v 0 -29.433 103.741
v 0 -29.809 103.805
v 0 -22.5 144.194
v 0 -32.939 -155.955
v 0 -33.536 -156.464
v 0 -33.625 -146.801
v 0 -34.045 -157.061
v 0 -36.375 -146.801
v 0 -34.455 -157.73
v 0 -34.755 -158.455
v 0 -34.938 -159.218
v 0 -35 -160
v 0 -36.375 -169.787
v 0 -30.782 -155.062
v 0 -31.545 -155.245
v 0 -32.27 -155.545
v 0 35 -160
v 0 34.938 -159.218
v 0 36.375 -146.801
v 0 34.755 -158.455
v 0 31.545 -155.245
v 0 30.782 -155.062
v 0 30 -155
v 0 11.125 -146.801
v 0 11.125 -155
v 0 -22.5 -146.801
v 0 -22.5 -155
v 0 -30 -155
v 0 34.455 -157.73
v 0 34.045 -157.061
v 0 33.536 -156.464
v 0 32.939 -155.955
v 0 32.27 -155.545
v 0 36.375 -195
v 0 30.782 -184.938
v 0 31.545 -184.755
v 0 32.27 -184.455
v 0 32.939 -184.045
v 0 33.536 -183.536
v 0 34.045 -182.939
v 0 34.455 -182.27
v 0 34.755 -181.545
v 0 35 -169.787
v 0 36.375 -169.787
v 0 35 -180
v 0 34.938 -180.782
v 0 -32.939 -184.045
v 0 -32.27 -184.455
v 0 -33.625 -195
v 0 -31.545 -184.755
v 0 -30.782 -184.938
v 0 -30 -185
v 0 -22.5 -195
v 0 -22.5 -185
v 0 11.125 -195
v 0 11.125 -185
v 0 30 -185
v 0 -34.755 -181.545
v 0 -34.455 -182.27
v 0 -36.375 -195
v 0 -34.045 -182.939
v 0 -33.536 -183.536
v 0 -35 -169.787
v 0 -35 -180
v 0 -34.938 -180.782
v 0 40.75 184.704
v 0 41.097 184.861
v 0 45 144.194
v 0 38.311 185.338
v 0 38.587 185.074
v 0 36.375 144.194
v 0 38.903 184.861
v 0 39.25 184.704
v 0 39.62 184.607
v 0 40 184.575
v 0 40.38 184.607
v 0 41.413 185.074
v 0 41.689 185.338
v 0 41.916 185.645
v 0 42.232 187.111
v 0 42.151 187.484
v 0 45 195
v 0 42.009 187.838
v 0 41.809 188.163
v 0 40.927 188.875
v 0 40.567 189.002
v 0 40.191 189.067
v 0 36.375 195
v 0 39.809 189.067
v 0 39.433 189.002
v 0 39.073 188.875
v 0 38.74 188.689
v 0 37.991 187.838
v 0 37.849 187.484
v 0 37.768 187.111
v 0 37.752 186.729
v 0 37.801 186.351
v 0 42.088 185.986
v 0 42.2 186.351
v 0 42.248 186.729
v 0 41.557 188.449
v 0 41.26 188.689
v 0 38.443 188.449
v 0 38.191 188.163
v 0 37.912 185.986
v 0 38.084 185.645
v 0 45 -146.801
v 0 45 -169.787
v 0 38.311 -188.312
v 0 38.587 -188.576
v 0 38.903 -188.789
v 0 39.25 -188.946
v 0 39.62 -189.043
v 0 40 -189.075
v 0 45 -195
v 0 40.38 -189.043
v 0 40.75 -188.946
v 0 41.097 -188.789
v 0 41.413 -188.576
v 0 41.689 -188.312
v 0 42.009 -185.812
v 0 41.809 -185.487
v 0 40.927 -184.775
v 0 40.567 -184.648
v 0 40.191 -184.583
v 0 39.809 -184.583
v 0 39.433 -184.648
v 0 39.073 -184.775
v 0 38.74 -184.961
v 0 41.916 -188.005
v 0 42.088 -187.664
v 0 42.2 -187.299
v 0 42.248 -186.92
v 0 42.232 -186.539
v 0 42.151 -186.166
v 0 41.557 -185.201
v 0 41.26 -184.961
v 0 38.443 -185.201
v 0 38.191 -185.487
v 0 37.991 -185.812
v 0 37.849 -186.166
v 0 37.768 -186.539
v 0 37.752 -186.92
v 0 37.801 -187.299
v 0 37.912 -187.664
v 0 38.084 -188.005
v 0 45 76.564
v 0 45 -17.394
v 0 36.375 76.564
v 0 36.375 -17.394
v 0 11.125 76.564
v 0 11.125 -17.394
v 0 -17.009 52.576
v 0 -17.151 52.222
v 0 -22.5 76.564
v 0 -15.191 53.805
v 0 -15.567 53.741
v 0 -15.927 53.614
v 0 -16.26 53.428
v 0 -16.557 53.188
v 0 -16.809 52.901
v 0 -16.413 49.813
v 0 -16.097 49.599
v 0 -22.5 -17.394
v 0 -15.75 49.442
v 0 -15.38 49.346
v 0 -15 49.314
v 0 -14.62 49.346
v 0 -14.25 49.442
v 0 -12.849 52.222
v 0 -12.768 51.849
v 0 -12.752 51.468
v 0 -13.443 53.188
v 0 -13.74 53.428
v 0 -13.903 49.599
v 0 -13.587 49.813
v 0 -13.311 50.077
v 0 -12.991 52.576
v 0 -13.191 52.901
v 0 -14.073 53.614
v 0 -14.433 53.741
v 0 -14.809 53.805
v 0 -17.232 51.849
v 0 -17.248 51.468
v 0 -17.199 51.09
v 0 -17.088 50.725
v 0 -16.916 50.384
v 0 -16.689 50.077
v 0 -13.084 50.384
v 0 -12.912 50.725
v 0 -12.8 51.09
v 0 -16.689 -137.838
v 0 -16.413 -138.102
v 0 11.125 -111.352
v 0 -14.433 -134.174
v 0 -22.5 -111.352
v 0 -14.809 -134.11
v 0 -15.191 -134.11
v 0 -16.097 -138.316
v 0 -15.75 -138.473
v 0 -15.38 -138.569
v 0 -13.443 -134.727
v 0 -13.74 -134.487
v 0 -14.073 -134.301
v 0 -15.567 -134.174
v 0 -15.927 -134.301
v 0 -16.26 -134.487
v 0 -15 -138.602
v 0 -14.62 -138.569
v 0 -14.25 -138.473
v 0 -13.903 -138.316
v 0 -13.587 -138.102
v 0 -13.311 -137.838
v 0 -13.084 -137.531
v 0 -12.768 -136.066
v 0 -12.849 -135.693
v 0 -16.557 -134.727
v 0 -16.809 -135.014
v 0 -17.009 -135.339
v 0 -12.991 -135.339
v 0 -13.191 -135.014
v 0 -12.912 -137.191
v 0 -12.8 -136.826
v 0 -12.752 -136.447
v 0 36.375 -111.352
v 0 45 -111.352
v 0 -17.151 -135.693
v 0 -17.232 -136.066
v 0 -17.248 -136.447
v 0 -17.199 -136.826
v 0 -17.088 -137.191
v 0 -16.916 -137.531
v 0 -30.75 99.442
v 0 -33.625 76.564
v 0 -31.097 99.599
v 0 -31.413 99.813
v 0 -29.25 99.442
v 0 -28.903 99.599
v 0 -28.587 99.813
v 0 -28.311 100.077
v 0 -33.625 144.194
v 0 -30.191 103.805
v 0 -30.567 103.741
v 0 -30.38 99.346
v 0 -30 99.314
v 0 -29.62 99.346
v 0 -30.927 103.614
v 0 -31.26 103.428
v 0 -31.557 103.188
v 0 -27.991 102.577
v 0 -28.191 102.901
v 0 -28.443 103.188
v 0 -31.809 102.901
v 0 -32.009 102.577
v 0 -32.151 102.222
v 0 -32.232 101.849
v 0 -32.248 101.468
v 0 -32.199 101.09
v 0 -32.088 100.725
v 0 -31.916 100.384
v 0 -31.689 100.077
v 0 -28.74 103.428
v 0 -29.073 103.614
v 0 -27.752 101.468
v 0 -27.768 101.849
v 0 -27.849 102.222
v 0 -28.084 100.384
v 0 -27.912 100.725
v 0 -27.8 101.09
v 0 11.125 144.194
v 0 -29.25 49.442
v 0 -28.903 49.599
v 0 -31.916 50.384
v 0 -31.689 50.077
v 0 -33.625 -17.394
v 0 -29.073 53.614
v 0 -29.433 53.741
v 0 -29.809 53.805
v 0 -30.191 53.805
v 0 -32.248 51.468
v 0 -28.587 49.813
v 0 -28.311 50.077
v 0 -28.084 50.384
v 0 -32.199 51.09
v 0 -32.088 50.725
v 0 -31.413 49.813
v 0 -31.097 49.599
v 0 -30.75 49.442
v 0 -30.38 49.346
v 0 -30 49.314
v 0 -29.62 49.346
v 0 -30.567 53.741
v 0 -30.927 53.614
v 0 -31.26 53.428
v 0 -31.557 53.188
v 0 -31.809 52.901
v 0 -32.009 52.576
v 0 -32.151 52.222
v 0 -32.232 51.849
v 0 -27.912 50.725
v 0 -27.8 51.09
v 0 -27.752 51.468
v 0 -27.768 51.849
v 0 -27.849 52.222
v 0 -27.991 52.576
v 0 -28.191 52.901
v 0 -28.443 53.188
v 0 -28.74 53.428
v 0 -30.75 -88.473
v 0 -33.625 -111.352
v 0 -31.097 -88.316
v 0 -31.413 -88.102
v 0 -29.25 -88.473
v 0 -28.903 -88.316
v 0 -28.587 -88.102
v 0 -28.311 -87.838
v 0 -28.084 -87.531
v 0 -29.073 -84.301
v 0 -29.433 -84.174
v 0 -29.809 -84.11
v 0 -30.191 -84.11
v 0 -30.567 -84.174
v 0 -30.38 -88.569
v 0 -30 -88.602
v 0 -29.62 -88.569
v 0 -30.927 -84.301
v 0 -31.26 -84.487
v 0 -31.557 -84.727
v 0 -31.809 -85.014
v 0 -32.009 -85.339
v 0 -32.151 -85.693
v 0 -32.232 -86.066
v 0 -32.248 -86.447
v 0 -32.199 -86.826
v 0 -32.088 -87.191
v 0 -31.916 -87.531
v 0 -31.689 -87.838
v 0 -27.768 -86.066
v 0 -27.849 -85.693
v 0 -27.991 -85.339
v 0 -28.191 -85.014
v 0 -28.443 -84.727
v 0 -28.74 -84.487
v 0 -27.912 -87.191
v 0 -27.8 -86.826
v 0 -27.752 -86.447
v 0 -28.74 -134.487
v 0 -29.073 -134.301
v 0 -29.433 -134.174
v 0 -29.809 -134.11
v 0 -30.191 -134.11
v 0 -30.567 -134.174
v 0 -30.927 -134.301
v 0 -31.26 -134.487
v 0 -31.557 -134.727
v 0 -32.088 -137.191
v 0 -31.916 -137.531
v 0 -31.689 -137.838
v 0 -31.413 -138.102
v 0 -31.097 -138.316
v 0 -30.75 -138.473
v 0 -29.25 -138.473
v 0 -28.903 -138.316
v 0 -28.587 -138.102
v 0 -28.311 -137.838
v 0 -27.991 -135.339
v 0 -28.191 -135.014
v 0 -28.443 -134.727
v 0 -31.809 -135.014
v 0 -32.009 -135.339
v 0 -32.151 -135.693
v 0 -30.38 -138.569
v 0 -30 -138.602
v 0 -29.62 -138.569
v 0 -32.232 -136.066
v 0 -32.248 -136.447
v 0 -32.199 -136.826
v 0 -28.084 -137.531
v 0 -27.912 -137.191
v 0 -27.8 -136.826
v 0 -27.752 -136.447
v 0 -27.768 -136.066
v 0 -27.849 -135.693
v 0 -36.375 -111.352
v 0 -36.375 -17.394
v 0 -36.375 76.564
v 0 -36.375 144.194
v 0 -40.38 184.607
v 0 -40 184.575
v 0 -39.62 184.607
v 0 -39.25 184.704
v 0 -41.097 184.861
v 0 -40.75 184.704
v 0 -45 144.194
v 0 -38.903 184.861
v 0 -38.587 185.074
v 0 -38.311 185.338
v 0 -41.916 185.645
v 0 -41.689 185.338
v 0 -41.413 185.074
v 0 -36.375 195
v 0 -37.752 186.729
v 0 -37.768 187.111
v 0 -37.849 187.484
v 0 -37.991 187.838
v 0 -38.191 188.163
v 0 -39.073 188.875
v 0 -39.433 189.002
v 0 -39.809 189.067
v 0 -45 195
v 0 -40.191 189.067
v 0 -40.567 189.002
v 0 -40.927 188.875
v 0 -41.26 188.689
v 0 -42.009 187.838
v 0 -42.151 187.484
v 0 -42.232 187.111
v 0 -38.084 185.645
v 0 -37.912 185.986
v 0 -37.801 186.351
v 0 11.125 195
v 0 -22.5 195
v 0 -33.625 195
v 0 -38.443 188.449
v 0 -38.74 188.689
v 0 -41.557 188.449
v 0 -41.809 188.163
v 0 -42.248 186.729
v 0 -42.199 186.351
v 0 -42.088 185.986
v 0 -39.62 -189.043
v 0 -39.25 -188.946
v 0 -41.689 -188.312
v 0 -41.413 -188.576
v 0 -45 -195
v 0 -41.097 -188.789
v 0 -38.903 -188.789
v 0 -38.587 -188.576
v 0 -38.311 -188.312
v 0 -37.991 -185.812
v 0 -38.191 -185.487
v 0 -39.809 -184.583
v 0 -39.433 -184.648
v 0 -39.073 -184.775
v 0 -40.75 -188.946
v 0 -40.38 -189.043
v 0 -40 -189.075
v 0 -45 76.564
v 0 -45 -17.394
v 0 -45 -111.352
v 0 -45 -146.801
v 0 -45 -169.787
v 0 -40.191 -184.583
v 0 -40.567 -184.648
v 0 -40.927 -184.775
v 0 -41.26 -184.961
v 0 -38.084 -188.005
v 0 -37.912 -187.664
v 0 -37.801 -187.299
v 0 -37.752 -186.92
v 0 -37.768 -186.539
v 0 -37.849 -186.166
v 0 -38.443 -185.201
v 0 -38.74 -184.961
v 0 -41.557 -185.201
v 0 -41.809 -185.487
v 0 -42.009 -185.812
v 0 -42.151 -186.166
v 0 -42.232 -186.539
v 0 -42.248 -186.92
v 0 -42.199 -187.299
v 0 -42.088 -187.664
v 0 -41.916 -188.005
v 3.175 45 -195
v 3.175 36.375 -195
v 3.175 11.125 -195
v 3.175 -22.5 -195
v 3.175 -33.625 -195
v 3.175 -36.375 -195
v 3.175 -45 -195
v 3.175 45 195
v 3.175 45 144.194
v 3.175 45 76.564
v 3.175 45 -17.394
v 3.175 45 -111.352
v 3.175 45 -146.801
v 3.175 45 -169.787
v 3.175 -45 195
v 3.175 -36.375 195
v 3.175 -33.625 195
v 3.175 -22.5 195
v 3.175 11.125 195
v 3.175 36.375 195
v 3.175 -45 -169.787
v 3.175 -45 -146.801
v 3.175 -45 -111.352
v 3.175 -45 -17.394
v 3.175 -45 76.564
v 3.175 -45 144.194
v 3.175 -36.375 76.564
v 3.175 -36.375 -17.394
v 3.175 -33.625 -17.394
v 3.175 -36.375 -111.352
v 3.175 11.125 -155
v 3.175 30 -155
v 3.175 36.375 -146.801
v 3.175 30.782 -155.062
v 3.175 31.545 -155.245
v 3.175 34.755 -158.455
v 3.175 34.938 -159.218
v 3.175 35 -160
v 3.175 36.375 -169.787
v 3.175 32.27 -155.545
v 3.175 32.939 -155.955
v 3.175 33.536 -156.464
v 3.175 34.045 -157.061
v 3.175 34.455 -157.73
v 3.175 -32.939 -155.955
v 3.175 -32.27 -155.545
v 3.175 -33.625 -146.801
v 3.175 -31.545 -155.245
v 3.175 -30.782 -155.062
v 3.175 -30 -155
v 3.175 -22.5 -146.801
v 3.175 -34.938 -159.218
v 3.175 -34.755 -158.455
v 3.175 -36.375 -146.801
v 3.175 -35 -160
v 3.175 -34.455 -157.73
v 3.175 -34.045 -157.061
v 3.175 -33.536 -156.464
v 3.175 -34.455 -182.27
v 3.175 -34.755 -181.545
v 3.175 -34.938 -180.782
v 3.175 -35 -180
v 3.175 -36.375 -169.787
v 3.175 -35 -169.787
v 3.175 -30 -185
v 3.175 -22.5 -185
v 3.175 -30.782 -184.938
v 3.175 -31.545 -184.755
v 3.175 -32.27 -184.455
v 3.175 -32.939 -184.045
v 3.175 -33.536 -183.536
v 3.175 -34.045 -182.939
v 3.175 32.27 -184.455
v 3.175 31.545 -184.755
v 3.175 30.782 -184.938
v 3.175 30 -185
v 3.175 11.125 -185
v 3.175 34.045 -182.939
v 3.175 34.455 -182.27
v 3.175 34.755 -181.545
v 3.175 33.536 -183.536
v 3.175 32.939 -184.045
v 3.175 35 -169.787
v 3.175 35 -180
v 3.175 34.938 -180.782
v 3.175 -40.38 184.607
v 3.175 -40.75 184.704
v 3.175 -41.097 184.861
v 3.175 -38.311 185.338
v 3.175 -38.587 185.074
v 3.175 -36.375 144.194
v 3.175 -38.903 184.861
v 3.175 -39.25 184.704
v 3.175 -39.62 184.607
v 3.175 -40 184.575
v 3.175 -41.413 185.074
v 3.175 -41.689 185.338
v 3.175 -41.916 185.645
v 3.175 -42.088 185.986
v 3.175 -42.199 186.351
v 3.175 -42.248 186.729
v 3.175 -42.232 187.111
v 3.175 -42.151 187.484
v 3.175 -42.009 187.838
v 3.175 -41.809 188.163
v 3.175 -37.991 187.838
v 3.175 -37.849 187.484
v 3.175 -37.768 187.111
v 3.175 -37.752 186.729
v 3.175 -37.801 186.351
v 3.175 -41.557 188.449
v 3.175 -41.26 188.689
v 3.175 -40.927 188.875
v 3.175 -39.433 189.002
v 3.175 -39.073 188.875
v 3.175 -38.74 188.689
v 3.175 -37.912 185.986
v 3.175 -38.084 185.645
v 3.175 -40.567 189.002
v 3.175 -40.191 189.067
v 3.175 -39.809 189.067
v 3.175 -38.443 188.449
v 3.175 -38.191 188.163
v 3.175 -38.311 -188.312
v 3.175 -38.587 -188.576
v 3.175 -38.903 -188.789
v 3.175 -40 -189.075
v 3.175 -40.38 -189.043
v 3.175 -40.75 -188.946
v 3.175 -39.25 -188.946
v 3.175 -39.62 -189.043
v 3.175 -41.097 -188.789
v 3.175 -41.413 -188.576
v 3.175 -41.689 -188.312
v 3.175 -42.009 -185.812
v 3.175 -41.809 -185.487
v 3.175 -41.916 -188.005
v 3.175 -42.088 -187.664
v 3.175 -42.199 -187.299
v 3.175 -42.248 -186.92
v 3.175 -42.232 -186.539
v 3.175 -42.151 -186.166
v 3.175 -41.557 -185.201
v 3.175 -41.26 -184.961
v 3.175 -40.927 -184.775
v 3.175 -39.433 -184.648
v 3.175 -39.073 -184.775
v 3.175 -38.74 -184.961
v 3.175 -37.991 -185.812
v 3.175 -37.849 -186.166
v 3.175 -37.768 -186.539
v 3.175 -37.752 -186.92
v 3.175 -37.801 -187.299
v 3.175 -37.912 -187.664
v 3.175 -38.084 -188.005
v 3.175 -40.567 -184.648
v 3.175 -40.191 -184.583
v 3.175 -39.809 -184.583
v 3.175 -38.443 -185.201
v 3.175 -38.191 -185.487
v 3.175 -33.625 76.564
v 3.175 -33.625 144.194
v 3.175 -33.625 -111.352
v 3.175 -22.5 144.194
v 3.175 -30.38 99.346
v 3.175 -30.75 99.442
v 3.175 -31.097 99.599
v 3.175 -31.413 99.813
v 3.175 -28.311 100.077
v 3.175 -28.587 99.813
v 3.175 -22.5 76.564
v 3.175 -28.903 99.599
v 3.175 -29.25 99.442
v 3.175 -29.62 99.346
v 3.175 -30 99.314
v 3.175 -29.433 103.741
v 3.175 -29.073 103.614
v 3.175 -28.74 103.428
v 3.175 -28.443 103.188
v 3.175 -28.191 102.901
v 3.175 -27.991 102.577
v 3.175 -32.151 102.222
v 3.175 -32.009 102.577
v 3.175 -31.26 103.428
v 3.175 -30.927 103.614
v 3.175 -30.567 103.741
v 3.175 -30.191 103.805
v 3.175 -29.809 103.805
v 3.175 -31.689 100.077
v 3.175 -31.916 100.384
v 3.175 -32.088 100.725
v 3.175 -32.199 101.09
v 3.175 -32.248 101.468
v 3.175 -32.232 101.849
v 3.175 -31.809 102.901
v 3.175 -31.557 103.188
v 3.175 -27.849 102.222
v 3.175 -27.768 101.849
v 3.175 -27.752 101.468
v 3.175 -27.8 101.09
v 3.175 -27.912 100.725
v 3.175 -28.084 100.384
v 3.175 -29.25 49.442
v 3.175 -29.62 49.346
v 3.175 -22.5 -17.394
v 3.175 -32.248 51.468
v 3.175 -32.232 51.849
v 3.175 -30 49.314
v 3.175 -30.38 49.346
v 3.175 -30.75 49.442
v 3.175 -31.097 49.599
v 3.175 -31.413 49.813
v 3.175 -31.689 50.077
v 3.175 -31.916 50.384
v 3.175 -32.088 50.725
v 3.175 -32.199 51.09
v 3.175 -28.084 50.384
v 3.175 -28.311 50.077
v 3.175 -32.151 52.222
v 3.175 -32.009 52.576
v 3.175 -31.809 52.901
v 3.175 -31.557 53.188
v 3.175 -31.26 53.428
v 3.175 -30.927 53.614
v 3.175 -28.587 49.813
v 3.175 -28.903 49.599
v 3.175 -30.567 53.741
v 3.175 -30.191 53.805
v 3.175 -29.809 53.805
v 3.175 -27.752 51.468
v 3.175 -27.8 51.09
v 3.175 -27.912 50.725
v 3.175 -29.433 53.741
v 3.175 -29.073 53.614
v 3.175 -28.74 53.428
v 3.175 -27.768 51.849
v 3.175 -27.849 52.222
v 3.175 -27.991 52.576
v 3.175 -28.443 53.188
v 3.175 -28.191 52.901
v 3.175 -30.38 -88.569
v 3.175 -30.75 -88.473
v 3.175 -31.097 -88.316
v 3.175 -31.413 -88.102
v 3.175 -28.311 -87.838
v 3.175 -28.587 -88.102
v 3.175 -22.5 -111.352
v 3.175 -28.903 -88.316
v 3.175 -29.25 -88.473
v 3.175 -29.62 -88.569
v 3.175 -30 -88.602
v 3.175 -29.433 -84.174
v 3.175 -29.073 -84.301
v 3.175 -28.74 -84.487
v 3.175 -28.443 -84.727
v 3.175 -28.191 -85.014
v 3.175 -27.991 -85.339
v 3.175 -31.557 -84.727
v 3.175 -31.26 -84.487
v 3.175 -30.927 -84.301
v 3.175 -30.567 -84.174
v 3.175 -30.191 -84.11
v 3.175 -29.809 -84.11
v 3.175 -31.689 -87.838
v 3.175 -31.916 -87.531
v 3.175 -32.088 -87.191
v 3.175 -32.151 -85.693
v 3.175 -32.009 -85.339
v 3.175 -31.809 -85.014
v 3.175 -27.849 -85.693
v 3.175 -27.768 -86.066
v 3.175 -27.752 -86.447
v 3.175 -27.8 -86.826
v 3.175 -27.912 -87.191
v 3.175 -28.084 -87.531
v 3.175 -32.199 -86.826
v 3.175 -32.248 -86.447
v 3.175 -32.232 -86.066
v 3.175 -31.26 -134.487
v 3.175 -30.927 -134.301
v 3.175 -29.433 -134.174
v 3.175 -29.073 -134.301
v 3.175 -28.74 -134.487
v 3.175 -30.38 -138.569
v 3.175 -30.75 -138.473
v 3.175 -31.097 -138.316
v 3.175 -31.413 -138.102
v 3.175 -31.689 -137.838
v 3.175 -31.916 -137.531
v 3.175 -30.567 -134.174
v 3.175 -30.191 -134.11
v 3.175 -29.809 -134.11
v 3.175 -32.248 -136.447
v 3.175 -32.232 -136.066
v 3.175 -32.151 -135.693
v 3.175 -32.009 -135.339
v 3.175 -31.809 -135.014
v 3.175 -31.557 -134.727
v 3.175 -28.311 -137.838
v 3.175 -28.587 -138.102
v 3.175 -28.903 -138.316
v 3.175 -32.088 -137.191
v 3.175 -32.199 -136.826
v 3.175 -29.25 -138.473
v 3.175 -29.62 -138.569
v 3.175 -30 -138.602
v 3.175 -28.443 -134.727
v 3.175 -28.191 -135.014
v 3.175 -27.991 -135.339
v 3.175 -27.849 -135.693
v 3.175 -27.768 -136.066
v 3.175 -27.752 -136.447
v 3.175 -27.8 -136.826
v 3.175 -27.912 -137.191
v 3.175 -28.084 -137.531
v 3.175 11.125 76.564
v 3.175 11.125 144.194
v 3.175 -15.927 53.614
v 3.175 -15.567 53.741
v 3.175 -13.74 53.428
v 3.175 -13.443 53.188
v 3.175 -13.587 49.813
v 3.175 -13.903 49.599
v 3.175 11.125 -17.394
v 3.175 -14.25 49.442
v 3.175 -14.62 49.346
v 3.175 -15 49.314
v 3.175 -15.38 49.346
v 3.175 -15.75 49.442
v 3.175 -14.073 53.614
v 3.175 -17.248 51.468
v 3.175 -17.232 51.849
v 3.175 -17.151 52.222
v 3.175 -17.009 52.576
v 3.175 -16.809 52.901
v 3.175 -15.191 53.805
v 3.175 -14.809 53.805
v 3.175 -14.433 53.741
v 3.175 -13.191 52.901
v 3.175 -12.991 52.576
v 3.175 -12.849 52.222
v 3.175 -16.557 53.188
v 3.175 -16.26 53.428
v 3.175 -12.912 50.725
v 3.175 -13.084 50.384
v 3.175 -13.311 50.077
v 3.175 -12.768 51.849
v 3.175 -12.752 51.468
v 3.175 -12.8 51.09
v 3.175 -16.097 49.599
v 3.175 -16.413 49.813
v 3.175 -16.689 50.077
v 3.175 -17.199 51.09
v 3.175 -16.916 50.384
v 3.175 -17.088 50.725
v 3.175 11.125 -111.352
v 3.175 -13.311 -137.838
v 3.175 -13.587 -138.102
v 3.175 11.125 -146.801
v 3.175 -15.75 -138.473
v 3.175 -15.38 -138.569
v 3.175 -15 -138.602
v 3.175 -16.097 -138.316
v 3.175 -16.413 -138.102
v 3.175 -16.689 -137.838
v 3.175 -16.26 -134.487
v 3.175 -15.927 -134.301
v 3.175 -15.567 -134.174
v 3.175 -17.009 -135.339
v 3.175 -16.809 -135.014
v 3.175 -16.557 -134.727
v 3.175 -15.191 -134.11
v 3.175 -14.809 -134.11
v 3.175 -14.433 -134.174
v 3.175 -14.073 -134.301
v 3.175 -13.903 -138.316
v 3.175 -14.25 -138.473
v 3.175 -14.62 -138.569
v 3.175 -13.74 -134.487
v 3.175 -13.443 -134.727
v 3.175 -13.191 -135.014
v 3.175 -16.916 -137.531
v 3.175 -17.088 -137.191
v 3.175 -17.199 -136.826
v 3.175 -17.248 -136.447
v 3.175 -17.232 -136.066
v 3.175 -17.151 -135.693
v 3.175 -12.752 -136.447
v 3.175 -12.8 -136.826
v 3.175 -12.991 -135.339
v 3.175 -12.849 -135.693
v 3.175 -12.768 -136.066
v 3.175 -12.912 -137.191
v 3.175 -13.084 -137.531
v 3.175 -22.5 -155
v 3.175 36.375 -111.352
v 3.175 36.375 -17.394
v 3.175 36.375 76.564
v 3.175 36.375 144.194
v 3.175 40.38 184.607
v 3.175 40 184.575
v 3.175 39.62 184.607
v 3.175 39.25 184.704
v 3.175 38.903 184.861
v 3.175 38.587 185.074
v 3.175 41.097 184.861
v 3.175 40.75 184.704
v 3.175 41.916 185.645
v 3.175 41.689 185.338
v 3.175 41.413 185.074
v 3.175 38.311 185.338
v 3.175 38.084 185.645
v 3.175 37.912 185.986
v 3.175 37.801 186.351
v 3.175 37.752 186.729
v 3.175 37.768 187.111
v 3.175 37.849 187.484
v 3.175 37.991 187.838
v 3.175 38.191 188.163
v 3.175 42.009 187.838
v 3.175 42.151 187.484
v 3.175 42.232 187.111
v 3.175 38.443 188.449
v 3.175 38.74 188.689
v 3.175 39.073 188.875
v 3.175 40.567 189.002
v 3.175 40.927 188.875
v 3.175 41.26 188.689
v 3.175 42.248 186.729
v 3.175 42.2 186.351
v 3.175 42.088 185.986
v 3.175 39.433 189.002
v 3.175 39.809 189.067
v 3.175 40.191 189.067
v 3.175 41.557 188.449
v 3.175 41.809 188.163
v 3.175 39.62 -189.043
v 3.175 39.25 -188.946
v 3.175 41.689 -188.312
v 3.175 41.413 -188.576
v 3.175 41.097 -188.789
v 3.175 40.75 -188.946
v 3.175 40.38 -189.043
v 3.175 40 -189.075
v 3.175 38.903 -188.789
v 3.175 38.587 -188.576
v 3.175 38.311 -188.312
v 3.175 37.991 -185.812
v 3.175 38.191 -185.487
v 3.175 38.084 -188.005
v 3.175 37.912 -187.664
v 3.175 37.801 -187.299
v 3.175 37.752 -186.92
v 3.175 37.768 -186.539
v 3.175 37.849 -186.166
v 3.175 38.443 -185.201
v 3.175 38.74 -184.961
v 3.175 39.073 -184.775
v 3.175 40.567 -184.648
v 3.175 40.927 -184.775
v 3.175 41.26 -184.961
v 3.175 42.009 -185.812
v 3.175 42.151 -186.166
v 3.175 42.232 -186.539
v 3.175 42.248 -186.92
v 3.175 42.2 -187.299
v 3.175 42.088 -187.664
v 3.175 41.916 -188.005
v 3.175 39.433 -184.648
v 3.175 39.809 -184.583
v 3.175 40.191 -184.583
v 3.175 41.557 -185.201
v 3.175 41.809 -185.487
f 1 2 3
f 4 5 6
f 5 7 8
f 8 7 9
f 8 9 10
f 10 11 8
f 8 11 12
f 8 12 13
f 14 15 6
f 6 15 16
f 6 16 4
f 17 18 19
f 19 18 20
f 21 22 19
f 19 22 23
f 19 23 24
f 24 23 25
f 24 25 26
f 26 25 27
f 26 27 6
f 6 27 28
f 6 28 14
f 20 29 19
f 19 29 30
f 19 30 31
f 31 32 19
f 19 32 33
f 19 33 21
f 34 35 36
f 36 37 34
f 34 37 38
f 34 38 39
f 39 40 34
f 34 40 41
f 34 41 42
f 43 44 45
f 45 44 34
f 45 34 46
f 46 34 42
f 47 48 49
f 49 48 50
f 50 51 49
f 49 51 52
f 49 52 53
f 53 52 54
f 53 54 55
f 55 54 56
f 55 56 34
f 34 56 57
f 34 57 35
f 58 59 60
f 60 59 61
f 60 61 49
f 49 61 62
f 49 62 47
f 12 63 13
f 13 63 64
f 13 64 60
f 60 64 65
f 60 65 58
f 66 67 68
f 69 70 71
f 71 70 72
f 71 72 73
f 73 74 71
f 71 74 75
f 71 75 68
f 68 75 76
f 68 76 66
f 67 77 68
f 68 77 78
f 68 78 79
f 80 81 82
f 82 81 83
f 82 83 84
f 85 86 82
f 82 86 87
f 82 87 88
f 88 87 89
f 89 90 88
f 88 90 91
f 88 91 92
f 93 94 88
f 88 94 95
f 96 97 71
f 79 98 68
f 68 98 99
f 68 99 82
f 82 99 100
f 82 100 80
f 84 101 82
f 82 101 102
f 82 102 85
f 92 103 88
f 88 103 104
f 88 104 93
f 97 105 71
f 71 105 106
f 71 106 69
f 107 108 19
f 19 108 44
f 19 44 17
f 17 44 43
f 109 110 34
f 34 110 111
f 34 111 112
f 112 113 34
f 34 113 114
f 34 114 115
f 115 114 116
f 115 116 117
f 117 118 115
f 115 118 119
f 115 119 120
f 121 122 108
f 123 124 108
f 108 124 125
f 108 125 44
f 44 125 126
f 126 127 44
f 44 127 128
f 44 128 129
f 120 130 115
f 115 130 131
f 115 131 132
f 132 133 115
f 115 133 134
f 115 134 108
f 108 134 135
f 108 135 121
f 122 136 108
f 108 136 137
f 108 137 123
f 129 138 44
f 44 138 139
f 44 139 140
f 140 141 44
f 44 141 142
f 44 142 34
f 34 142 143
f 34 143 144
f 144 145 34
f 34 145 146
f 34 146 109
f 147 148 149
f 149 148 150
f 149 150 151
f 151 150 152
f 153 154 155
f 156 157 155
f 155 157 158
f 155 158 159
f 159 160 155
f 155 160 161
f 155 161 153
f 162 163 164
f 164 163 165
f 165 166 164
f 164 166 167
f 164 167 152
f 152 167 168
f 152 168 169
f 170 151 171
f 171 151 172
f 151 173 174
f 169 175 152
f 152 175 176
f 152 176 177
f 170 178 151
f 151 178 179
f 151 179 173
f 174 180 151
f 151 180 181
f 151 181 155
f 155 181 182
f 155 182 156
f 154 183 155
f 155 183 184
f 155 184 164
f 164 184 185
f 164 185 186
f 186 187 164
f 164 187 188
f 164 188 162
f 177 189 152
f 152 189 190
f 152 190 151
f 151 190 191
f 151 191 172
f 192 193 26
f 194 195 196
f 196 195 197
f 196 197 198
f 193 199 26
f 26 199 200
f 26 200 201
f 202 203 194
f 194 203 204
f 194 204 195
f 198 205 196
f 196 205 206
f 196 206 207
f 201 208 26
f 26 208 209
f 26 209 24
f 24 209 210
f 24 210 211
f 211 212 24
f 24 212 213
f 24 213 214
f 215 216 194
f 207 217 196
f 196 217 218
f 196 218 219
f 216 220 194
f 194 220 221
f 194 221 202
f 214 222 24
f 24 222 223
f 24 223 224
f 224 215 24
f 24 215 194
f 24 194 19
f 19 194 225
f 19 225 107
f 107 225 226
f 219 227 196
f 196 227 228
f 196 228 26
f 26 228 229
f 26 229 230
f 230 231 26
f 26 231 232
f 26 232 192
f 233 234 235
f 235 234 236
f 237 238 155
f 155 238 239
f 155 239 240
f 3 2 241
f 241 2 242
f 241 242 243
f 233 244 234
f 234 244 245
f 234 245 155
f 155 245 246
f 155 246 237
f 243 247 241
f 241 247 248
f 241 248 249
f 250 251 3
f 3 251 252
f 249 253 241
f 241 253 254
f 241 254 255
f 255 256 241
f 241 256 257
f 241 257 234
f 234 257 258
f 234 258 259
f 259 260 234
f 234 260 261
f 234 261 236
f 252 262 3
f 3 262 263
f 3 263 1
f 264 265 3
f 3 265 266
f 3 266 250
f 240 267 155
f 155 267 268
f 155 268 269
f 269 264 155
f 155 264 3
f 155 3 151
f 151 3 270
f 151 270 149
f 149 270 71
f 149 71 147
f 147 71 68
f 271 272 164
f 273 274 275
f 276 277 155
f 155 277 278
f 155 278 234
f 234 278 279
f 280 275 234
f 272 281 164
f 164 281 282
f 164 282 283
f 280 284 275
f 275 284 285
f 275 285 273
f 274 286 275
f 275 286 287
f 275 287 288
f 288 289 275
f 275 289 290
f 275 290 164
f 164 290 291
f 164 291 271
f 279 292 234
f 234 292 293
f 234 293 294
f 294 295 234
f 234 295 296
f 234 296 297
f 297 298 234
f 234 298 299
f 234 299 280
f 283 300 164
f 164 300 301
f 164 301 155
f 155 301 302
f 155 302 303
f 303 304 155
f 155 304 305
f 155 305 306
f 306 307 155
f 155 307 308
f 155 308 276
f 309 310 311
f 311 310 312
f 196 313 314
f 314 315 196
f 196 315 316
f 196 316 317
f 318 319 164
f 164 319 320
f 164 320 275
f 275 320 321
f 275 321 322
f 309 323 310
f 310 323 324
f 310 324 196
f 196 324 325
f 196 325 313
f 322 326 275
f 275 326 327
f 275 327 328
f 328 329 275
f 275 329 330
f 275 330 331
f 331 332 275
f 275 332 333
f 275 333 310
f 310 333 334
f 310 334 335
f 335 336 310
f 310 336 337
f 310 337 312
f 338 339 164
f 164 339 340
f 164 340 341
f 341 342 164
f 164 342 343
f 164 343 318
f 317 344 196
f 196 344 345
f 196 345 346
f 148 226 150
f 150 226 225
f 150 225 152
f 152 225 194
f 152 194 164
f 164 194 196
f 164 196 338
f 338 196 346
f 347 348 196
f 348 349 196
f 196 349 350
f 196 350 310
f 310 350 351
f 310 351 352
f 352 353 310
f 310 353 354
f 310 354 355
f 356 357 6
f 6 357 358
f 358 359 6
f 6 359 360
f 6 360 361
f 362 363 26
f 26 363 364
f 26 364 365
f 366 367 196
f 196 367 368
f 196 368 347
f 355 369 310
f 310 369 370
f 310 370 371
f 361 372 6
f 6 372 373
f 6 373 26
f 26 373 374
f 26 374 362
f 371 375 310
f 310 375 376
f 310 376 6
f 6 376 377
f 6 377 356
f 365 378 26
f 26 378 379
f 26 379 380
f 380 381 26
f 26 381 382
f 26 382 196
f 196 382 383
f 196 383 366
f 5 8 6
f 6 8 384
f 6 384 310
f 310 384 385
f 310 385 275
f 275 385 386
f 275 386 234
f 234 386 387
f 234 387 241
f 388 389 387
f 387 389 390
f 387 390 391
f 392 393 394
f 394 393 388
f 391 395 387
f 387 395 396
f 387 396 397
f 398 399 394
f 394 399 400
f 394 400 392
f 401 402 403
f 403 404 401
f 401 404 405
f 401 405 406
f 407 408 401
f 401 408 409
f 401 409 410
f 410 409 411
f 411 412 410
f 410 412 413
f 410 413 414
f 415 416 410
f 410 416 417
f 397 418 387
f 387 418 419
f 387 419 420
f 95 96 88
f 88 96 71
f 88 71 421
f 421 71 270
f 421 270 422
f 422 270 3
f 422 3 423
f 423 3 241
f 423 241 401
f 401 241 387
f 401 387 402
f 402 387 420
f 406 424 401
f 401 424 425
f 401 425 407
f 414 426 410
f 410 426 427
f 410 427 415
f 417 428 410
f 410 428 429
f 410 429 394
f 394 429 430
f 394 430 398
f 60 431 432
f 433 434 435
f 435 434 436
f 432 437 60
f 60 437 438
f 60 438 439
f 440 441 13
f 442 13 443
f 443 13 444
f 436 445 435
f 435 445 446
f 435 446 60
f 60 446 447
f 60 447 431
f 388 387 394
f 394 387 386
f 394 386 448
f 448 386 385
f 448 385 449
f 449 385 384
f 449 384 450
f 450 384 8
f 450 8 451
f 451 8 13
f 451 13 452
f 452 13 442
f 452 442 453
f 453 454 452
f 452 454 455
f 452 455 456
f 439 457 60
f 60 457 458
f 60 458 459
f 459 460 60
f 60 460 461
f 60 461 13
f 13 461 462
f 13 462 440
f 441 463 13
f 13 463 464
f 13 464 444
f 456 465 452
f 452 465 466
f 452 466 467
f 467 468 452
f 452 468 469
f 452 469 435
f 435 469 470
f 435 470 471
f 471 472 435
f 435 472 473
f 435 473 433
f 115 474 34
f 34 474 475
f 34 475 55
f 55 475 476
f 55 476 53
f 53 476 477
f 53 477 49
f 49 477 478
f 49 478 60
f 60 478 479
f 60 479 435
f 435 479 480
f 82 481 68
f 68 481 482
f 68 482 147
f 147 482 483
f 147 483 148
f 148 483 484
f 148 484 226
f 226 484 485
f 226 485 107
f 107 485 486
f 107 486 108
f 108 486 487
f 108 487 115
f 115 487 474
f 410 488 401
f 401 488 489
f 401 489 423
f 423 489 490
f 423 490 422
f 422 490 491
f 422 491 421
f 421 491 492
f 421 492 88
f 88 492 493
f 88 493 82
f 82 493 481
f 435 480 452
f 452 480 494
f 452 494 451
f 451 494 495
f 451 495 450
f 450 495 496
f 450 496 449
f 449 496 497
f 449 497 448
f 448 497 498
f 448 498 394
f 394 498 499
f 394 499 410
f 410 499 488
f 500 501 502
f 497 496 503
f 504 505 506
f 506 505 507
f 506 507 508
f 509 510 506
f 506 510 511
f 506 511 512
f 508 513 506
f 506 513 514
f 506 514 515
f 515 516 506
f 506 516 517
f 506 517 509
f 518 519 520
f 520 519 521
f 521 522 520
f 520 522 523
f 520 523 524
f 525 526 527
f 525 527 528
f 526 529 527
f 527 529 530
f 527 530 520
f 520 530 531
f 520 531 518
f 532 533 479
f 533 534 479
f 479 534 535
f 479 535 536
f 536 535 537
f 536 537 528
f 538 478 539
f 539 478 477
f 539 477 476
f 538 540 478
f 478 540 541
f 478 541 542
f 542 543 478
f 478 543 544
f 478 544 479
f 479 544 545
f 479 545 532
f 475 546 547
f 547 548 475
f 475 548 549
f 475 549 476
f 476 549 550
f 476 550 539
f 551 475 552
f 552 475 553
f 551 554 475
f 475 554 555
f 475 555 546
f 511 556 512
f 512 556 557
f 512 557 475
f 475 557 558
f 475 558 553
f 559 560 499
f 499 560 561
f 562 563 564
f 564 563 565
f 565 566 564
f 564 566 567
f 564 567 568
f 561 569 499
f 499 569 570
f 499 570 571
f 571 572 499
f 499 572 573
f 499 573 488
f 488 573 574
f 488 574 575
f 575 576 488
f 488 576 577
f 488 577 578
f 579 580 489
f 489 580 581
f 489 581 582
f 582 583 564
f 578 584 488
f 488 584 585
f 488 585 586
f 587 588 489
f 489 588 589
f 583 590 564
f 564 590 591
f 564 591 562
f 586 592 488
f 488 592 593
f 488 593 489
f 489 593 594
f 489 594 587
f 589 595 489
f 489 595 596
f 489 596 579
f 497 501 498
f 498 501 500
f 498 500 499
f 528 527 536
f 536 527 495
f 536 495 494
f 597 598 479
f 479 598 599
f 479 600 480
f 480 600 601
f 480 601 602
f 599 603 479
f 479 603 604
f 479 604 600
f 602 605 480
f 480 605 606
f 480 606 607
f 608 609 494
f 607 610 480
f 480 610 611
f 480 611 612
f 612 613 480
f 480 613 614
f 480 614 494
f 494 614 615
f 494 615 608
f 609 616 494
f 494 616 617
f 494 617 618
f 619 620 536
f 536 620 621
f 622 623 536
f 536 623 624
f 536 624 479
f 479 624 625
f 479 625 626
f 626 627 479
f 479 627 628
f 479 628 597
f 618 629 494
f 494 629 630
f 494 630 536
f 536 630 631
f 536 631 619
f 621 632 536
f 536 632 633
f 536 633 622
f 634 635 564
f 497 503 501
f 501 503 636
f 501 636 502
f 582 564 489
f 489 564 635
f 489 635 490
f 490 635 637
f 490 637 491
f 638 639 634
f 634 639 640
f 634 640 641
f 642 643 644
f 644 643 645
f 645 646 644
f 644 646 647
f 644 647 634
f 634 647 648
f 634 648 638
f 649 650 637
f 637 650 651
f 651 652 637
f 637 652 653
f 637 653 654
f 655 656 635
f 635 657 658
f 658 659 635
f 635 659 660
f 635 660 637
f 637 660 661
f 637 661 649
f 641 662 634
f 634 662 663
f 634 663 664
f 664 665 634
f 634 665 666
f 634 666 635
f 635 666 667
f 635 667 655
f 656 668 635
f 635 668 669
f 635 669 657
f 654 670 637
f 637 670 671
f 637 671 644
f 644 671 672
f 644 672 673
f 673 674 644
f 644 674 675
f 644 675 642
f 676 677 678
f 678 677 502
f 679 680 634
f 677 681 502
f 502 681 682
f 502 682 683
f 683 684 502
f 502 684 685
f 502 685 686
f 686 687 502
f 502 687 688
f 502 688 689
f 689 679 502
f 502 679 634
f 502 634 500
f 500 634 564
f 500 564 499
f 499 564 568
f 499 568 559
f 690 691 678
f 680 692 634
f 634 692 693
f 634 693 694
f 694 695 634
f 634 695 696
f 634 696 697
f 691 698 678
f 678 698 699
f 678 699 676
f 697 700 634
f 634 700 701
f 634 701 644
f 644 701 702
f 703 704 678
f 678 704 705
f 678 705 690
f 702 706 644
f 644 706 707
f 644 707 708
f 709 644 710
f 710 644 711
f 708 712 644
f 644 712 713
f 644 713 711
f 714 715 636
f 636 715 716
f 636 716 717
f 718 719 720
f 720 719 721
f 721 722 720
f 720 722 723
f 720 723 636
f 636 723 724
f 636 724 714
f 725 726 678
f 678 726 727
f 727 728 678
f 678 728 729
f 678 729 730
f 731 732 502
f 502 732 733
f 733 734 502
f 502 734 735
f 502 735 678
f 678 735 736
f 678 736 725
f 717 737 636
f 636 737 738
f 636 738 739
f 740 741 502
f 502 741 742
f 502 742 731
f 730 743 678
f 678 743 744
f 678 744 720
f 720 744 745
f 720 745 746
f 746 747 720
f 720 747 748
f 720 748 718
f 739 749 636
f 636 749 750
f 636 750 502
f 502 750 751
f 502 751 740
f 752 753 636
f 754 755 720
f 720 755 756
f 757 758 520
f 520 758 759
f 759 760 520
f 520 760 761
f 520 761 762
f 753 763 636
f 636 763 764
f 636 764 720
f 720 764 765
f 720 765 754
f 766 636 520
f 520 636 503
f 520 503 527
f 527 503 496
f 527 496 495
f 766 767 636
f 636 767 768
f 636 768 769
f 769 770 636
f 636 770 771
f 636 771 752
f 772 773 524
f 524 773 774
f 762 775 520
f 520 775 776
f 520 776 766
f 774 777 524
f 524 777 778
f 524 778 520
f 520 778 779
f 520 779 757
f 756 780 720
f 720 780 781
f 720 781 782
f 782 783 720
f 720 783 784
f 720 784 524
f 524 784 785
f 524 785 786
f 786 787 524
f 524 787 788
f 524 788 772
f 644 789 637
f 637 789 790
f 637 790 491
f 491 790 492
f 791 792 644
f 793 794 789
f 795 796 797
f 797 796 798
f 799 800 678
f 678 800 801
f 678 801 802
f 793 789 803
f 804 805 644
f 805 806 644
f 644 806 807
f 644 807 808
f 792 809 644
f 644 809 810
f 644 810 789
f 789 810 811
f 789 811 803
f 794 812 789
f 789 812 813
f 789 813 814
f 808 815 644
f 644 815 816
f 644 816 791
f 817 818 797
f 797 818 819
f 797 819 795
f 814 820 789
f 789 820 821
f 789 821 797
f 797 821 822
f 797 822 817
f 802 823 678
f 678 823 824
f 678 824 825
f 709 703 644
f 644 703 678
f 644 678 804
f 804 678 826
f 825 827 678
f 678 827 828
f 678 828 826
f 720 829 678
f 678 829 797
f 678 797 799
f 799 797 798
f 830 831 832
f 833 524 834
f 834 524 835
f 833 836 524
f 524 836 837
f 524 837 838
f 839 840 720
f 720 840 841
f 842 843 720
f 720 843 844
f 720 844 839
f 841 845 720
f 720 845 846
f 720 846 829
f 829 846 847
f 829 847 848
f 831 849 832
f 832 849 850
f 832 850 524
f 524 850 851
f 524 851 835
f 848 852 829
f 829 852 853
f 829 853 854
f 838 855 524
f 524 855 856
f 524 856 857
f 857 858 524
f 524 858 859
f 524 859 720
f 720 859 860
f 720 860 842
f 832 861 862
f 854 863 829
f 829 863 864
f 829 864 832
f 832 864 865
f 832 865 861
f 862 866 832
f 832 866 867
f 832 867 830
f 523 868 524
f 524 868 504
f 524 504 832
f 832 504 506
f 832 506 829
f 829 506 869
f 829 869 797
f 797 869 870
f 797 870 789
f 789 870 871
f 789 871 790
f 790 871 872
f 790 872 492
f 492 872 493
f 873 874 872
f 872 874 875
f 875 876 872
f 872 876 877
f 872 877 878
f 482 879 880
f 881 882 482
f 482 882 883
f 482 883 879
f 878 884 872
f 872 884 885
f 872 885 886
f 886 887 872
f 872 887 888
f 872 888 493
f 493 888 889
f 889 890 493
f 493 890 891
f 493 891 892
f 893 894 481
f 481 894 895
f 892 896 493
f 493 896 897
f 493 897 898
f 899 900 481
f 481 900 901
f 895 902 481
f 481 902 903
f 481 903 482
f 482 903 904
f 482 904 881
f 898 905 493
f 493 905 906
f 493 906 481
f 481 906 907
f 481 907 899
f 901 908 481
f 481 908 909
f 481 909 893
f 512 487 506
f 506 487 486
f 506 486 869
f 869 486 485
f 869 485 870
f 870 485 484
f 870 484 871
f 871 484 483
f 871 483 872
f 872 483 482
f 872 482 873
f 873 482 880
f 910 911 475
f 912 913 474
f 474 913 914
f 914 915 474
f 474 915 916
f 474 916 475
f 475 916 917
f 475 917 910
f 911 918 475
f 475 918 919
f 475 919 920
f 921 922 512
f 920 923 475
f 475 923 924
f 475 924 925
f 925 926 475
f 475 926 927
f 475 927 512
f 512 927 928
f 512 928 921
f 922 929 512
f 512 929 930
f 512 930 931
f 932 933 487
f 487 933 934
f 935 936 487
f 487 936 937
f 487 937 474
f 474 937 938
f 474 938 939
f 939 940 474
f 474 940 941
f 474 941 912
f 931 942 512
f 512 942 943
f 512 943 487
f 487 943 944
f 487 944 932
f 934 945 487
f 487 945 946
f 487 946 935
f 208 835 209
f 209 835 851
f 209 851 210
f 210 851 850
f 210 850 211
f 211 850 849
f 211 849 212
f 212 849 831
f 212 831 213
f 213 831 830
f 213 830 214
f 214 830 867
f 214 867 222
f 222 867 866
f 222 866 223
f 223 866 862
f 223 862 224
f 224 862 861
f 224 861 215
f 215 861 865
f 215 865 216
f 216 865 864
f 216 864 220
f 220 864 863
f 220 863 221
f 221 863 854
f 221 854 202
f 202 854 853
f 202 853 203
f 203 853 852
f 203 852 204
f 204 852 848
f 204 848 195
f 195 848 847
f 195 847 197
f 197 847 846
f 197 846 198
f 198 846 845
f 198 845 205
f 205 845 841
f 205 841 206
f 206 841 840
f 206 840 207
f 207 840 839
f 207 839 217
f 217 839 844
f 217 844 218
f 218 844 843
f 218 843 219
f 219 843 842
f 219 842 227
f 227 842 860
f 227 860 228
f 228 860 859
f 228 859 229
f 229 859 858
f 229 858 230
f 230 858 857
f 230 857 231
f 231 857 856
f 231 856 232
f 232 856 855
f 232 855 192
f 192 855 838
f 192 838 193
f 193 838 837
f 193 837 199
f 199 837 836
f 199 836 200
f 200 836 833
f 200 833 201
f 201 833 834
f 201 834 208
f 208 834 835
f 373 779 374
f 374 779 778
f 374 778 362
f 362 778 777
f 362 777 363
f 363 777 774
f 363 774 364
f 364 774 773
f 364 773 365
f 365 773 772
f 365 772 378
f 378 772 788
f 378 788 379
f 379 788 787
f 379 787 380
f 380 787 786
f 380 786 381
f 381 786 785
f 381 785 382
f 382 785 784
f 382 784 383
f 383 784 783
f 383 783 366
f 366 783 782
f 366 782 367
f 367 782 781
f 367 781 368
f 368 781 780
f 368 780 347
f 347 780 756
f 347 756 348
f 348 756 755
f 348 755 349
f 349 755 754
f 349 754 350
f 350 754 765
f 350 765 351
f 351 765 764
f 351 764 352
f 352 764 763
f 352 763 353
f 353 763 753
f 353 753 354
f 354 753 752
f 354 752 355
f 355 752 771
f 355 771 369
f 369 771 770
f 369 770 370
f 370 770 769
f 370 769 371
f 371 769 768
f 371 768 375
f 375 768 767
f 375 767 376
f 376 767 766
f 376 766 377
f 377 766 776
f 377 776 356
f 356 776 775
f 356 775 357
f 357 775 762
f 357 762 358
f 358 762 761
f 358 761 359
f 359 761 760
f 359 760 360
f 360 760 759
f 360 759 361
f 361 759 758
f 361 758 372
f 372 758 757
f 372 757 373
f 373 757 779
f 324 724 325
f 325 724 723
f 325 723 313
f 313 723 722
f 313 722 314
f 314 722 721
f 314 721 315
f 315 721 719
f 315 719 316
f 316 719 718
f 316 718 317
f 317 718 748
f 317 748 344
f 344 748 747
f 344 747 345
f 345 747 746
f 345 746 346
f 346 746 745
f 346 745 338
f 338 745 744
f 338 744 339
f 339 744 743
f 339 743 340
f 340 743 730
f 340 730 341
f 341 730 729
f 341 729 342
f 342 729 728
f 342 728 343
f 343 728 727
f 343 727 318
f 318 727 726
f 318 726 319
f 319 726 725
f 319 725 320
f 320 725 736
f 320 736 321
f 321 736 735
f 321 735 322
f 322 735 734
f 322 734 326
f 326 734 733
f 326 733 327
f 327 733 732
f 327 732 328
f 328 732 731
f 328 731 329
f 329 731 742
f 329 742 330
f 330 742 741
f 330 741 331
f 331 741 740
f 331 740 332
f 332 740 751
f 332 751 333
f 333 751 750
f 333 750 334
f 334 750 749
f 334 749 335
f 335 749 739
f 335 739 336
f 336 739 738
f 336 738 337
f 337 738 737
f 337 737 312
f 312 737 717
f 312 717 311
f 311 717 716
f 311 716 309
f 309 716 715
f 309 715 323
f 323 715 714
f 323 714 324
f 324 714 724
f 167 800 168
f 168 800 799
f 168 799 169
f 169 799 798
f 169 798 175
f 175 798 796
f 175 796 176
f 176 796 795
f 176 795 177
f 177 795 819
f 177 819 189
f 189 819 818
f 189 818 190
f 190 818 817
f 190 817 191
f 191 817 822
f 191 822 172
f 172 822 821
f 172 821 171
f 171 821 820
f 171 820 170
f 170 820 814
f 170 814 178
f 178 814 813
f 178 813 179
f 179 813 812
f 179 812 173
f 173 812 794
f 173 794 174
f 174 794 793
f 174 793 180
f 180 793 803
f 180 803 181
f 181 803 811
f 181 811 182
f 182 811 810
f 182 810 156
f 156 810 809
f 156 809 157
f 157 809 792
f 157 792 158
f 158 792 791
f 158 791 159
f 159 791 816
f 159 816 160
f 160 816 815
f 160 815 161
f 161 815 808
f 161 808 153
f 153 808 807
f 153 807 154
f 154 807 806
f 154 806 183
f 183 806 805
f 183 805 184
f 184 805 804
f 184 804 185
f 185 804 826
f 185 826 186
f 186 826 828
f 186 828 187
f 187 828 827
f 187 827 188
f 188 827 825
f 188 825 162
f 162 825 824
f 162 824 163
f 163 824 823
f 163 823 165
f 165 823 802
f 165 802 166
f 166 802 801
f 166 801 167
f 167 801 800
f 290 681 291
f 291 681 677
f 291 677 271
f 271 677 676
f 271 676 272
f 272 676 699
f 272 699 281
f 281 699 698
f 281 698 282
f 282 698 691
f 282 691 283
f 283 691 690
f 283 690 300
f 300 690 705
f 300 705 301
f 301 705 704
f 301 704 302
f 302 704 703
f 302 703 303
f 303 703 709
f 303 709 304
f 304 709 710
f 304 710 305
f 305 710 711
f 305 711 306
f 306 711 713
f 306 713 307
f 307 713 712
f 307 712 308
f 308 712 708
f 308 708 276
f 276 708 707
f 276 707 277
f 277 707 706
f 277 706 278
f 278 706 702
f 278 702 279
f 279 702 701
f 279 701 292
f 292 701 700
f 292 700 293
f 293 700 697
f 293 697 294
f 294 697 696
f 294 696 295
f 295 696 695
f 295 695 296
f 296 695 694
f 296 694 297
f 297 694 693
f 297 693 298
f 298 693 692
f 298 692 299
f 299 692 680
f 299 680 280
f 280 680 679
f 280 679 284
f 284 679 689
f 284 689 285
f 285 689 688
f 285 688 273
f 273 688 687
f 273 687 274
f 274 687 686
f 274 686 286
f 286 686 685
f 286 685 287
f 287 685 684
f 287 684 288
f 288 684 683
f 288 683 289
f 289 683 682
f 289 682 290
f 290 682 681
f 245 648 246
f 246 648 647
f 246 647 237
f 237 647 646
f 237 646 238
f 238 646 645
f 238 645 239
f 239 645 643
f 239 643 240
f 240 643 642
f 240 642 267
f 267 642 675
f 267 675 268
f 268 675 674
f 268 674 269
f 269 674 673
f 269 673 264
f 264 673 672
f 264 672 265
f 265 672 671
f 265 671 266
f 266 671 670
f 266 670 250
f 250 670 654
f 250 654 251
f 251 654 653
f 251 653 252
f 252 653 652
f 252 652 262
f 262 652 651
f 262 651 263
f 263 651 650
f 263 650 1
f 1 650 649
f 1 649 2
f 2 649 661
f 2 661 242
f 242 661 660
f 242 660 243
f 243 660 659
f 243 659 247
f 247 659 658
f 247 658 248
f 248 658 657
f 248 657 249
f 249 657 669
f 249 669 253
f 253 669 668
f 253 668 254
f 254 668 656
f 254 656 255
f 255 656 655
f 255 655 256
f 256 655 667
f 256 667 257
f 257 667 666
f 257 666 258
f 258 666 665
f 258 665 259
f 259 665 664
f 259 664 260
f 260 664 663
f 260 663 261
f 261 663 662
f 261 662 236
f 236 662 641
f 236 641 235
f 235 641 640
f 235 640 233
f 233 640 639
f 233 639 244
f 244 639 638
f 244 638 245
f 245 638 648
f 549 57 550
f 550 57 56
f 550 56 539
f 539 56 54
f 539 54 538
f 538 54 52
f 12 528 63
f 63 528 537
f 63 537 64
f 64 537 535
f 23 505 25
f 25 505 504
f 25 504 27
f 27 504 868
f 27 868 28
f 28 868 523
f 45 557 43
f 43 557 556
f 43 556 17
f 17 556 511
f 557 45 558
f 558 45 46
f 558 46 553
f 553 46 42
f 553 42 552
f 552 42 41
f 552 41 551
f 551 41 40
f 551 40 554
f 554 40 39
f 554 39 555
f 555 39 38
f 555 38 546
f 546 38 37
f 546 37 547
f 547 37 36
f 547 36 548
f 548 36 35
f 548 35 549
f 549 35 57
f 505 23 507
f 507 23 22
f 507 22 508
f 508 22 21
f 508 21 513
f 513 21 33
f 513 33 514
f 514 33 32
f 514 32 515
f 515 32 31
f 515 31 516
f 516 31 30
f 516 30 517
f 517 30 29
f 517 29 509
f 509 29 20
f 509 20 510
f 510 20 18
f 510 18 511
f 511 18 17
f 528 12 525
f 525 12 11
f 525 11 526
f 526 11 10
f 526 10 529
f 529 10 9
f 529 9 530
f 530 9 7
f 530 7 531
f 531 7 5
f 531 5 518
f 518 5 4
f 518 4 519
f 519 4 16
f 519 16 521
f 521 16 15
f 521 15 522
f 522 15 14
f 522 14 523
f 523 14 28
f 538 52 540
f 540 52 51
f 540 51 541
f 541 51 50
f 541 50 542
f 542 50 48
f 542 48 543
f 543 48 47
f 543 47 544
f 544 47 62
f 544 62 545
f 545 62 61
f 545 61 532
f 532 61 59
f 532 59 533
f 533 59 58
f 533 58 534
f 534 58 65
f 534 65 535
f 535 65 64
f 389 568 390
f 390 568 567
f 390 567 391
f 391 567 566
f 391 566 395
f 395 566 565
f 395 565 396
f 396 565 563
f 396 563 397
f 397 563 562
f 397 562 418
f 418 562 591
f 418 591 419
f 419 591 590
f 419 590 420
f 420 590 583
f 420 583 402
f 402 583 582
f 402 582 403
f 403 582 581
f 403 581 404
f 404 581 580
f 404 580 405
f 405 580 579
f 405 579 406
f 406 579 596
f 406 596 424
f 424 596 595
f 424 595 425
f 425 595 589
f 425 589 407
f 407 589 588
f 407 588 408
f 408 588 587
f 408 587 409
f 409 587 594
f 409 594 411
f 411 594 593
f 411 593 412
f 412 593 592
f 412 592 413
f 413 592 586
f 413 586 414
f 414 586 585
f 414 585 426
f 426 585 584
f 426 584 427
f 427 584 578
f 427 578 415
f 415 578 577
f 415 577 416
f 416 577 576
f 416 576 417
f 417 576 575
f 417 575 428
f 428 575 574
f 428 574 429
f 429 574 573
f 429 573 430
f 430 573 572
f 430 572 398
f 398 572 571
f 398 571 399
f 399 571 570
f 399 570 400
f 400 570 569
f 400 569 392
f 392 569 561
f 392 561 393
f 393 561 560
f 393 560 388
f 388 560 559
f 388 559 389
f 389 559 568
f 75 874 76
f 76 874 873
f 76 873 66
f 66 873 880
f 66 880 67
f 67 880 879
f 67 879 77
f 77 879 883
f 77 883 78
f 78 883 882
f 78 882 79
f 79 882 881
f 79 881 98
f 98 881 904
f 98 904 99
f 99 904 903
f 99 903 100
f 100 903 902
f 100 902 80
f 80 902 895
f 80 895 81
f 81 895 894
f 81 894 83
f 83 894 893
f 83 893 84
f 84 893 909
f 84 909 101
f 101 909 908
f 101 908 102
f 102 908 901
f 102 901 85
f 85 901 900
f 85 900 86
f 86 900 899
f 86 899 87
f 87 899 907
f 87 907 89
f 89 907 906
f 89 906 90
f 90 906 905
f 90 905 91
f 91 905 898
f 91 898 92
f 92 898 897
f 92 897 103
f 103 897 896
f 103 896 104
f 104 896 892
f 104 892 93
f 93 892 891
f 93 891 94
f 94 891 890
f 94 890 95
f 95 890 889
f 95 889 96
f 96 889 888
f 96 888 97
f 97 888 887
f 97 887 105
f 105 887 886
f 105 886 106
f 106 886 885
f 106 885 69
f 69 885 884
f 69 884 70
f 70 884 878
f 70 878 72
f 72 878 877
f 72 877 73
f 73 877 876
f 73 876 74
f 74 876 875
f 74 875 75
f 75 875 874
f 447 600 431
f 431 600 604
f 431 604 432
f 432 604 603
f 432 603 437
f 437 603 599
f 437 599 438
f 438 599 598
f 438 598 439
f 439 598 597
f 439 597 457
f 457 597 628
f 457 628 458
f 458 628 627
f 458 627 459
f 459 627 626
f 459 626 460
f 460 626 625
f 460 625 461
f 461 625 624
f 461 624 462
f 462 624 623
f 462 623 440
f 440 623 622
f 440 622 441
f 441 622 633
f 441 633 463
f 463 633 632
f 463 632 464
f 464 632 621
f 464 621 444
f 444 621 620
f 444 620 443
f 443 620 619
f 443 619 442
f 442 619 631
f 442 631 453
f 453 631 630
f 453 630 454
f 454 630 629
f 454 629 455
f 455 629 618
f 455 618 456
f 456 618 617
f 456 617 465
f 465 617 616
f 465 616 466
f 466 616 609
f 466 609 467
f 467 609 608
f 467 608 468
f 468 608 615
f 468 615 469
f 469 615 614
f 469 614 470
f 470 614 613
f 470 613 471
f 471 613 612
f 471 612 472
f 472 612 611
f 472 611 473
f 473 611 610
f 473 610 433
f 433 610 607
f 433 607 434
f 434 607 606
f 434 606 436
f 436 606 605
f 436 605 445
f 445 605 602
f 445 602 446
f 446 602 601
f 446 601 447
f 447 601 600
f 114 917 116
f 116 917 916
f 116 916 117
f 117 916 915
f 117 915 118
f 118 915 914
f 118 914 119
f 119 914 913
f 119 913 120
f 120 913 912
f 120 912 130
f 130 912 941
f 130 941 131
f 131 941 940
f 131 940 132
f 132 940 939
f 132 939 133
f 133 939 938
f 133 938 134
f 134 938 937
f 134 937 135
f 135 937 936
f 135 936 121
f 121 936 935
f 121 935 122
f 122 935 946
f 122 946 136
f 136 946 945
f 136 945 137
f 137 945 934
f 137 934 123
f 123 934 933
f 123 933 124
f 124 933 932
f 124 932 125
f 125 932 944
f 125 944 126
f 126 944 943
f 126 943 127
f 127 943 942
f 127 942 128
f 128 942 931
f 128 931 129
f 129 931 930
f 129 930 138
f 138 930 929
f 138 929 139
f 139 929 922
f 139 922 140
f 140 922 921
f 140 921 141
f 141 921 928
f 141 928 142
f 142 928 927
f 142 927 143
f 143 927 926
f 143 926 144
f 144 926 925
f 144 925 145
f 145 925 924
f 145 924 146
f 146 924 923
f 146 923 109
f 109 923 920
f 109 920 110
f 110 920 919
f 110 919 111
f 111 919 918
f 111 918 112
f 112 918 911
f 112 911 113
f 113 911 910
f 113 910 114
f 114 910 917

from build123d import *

# Parameters (mm, degrees)
SKETCH1_W                            = 390
SKETCH1_H                            = 90
BOSS_EXTRUDE1_DEPTH                  = 3.175
M4_CLEARANCE_HOLE1_D                 = 4.5
SKETCH4_W                            = 30
SKETCH4_H                            = 70
CUT_EXTRUDE1_DEPTH                   = 201.150145204
FILLET1_R                            = 5
M4_CLEARANCE_HOLE2_D                 = 4.5
MIRROR1_AT_THE_SECOND_PLANE_COPY_1_D = 4.5


with BuildPart() as part:
    # Sketch1 → Boss-Extrude1 (new body)
    with BuildSketch(Plane(origin=(0, 0, 0), x_dir=(0, 0, -1), z_dir=(1, 0, 0))):
        Rectangle(SKETCH1_W, SKETCH1_H)
    extrude(amount=BOSS_EXTRUDE1_DEPTH)

    # M4 Clearance Hole1 (through all)
    with Locations(Plane(origin=(3.175, 0, 0), x_dir=(0, 0, -1), z_dir=(1, 0, 0))):
        with Locations((136.351636823, -15), (-101.563539669, -30), (-51.563539669, -30), (-51.563539669, -15), (86.351636823, -30), (136.351636823, -30)):
            Hole(M4_CLEARANCE_HOLE1_D / 2)

    # Sketch4 → Cut-Extrude1 (cut, through all)
    with BuildSketch(Plane(origin=(3.175, 0, 0), x_dir=(0, 0, -1), z_dir=(1, 0, 0))):
        with Locations((170, 0)):
            Rectangle(SKETCH4_W, SKETCH4_H)
    extrude(amount=-CUT_EXTRUDE1_DEPTH, mode=Mode.SUBTRACT)

    # Fillet1
    fillet1_edges = [part.edges().sort_by_distance(p)[0] for p in [
        (1.5875, 35, -185),
        (1.5875, -35, -185),
        (1.5875, -35, -155),
        (1.5875, 35, -155),
    ]]
    fillet(fillet1_edges, radius=FILLET1_R)

    # M4 Clearance Hole2 (through all)
    with Locations(Plane(origin=(3.175, 0, 0), x_dir=(0, 0, -1), z_dir=(1, 0, 0))):
        with Locations((-186.825, -40)):
            m4_clearance_hole2 = Hole(M4_CLEARANCE_HOLE2_D / 2)

    # Mirror1: M4 Clearance Hole2 across plane
    add(m4_clearance_hole2.mirror(Plane.XY), mode=Mode.SUBTRACT)

    # Mirror1 at the second plane: M4 Clearance Hole2 across plane
    add(m4_clearance_hole2.mirror(Plane.ZX), mode=Mode.SUBTRACT)

    # Mirror1 at the second plane copy 1 (through all)
    with Locations(Plane(origin=(3.175, 0, 0), x_dir=(0, 0, 1), z_dir=(1, 0, 0))):
        with Locations((-186.825, -40)):
            Hole(MIRROR1_AT_THE_SECOND_PLANE_COPY_1_D / 2)


solid = part.part
